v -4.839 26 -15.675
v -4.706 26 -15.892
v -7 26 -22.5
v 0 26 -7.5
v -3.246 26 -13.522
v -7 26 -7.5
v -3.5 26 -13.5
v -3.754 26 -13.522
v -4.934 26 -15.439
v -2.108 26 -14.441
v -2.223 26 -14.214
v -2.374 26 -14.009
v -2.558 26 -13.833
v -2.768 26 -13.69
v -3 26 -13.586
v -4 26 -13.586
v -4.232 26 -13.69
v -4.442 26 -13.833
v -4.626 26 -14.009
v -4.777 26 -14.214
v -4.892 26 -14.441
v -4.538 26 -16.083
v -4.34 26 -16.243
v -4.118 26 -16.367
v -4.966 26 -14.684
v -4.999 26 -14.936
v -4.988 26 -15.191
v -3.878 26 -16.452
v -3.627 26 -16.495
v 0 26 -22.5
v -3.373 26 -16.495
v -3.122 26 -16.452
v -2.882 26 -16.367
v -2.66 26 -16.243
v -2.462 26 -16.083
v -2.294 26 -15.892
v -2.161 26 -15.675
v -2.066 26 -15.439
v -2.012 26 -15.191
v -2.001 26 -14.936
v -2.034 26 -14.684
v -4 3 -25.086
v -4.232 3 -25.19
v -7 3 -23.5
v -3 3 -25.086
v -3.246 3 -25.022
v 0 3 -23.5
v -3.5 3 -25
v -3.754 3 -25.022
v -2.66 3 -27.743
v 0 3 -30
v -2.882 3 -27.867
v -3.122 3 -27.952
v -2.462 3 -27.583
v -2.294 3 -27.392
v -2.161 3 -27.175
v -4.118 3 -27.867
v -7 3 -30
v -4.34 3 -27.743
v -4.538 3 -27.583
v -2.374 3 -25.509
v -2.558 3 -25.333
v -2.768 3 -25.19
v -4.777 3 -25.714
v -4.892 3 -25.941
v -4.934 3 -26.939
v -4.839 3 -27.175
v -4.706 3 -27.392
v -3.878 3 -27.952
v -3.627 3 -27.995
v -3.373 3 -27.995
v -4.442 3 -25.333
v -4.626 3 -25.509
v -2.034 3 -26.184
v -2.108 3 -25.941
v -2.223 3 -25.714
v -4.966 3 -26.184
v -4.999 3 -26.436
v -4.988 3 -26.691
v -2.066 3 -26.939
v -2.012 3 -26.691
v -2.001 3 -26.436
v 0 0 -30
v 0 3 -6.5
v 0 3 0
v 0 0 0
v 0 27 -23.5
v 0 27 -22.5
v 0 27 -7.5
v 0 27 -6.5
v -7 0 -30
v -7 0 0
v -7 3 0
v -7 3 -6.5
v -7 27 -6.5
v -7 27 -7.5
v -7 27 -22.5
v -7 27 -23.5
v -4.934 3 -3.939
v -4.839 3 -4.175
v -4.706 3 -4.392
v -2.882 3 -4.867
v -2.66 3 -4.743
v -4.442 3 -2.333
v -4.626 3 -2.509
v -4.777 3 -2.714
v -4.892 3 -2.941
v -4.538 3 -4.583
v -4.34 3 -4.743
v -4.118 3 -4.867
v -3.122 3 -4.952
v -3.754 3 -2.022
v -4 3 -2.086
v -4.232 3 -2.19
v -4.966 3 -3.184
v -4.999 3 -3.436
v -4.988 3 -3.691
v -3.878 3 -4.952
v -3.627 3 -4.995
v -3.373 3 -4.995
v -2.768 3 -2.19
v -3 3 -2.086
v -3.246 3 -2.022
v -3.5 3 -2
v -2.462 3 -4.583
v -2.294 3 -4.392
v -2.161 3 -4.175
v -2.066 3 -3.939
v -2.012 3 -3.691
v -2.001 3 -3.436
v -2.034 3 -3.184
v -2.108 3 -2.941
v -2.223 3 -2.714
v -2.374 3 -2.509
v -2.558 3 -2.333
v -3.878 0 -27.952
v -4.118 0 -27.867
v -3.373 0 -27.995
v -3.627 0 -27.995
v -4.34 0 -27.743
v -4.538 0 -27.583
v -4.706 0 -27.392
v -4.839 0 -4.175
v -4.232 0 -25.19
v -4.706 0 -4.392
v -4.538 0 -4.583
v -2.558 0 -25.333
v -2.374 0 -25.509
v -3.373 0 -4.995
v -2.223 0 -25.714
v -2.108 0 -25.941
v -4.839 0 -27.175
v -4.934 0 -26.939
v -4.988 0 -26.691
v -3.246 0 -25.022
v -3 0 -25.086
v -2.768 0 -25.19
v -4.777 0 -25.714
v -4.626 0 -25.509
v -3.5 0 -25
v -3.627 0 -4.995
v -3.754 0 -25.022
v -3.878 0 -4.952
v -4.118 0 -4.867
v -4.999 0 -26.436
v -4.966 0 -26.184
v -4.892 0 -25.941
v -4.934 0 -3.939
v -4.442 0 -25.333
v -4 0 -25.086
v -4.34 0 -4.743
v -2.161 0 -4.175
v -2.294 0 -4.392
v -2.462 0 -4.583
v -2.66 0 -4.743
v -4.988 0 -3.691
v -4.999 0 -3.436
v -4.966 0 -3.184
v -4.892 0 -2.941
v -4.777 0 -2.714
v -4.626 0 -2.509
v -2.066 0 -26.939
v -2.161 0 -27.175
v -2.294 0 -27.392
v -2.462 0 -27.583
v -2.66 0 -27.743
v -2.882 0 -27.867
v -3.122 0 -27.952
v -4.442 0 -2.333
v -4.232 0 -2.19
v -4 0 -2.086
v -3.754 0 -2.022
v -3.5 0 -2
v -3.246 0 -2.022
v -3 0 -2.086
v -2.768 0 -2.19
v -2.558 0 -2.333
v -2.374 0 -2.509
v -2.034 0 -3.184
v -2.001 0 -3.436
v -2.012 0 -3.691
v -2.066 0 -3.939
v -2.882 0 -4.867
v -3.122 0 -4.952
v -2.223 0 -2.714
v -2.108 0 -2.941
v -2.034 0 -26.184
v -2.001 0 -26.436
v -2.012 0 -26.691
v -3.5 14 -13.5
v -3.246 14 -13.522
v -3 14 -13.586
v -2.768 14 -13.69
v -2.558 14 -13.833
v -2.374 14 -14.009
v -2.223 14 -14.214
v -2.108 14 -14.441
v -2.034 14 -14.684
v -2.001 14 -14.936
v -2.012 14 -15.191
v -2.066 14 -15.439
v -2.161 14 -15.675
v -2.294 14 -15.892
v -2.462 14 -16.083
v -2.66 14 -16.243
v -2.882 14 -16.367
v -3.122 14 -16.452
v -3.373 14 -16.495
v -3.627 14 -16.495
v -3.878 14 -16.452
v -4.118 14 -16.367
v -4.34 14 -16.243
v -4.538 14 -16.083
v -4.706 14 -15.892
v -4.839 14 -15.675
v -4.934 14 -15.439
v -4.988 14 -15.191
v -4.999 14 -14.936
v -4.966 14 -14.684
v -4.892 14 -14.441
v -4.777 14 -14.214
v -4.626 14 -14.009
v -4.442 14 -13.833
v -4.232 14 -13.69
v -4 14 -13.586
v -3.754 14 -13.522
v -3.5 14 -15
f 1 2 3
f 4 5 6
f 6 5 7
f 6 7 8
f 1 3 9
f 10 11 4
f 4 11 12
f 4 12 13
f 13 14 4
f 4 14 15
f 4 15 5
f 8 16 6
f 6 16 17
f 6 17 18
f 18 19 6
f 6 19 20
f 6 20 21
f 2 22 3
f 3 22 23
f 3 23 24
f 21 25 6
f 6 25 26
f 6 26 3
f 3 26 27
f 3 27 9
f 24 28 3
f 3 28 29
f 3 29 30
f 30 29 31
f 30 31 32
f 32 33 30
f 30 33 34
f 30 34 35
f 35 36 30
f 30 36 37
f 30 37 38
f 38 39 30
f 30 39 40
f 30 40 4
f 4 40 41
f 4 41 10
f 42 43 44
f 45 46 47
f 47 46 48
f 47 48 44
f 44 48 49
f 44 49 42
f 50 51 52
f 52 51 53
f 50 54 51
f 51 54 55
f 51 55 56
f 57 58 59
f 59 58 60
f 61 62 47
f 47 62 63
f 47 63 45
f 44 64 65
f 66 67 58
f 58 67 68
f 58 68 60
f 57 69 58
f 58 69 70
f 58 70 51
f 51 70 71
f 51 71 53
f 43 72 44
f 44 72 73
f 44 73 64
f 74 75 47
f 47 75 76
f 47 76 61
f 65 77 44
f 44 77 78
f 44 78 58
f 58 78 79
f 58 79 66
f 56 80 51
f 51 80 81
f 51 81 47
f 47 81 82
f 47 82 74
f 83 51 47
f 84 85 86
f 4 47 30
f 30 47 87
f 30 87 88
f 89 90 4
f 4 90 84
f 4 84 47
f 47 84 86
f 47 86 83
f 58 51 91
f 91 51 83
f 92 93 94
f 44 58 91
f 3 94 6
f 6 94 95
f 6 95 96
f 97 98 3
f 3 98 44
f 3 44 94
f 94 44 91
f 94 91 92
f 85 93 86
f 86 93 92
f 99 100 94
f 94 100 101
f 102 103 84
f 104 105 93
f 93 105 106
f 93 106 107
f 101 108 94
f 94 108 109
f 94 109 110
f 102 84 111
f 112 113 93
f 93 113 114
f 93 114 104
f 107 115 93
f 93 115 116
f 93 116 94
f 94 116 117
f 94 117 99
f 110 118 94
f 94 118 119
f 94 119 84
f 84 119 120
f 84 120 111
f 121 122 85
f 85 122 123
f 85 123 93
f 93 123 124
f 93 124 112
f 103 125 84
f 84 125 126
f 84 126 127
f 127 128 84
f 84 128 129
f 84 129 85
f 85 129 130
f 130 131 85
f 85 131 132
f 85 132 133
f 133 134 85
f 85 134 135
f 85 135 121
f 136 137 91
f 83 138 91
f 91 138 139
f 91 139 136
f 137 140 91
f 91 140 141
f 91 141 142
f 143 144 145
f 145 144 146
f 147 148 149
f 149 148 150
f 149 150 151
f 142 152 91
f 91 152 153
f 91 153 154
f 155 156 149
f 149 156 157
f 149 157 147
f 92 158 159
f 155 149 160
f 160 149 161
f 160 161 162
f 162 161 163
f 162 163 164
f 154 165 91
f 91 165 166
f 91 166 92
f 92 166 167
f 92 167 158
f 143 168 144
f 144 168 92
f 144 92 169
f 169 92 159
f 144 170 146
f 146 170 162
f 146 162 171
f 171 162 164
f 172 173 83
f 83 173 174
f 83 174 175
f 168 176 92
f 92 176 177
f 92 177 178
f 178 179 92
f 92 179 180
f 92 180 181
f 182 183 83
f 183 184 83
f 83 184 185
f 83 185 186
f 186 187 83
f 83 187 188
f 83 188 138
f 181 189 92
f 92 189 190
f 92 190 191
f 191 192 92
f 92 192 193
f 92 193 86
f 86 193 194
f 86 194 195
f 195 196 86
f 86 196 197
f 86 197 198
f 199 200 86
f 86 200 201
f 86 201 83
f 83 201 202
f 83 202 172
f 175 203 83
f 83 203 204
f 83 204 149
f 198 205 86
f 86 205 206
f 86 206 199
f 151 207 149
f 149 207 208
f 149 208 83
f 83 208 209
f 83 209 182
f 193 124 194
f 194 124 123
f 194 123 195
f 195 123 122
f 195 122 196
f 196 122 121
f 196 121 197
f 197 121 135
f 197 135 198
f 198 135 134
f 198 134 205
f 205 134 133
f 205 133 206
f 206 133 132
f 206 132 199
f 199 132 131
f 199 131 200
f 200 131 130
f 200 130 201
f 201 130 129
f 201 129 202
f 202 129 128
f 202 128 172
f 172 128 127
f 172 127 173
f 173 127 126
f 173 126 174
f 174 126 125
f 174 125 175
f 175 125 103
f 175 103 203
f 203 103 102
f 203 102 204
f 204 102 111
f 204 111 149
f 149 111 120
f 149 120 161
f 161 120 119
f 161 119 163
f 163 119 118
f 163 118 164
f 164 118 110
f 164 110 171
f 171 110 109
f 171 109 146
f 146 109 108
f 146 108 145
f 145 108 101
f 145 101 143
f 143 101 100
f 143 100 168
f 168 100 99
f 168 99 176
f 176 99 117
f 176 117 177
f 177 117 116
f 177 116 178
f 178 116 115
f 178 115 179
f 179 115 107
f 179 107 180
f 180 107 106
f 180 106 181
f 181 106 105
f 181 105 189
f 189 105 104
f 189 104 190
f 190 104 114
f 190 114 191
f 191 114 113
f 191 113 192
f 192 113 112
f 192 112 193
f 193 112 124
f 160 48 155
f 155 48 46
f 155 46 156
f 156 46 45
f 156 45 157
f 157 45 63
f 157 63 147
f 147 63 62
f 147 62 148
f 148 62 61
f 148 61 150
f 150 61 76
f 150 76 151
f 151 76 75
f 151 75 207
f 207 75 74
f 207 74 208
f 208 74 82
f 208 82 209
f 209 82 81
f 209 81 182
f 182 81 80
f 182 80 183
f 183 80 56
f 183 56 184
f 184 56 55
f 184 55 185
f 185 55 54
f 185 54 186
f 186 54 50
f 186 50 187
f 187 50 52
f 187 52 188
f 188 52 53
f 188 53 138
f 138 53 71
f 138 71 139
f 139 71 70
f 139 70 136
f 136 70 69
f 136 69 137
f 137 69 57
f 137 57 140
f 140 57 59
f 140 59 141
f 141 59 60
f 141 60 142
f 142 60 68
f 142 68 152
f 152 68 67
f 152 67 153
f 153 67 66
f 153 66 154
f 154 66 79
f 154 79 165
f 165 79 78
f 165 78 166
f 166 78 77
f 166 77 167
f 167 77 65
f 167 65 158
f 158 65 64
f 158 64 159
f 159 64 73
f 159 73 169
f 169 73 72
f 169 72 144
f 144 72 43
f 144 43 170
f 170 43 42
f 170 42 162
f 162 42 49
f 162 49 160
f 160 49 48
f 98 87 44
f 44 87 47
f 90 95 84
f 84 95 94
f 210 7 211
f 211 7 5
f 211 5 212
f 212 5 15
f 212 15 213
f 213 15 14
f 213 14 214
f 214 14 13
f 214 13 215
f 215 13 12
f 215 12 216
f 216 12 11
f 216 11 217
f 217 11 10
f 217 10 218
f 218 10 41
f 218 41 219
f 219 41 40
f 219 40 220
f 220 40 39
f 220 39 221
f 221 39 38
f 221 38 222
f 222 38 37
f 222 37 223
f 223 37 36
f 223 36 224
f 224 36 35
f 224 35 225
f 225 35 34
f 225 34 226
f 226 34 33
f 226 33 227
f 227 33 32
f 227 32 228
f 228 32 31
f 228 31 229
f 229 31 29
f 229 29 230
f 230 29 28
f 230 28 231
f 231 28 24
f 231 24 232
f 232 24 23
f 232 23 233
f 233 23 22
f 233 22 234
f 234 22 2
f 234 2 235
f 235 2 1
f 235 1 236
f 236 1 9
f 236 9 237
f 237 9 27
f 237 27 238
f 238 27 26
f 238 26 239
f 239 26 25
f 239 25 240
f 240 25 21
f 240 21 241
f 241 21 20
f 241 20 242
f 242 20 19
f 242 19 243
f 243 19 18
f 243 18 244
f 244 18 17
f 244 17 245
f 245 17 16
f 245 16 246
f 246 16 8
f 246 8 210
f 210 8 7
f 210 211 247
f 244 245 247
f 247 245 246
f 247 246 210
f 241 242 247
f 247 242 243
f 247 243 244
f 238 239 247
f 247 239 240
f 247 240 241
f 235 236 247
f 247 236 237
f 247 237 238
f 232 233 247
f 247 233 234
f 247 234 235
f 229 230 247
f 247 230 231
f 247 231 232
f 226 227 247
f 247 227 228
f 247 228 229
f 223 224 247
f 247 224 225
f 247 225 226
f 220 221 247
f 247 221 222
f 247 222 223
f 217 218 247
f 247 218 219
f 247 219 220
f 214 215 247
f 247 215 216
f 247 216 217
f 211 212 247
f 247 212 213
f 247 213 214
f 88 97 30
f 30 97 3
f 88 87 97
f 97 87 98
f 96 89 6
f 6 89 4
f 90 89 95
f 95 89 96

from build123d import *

# Parameters (mm, degrees)
SKETCH1_W           = 7
SKETCH1_H           = 30
BOSS_EXTRUDE1_DEPTH = 3
SKETCH2_R           = 1.5
CUT_EXTRUDE1_DEPTH  = 3
SKETCH3_W           = 7
SKETCH3_H           = 8.5
BOSS_EXTRUDE2_DEPTH = 23
SKETCH4_R           = 1.5
CUT_EXTRUDE3_DEPTH  = 12
SKETCH5_W           = 7
SKETCH5_H           = 1
BOSS_EXTRUDE3_DEPTH = 1


with BuildPart() as part:
    # Sketch1 → Boss-Extrude1 (new body)
    with BuildSketch(Plane(origin=(0, 0, 0), x_dir=(1, 0, 0), z_dir=(0, 1, 0))):
        with Locations((-3.5, 15)):
            Rectangle(SKETCH1_W, SKETCH1_H)
    extrude(amount=BOSS_EXTRUDE1_DEPTH)

    # Sketch2 → Cut-Extrude1 (cut)
    with BuildSketch(Plane(origin=(0, 3, 0), x_dir=(1, 0, 0), z_dir=(0, 1, 0))):
        with Locations(Location((-3.5, 26.5, 0), (0, 0, 270))):
            Circle(SKETCH2_R)
        with Locations(Location((-3.5, 3.5, 0), (0, 0, 270))):
            Circle(SKETCH2_R)
    extrude(amount=-CUT_EXTRUDE1_DEPTH, mode=Mode.SUBTRACT)

    # Sketch3 → Boss-Extrude2 (add)
    with BuildSketch(Plane(origin=(0, 3, 0), x_dir=(1, 0, 0), z_dir=(0, 1, 0))):
        with Locations((-3.5, 19.25)):
            Rectangle(SKETCH3_W, SKETCH3_H)
        with Locations((-3.5, 10.75)):
            Rectangle(SKETCH3_W, SKETCH3_H)
    extrude(amount=BOSS_EXTRUDE2_DEPTH)

    # Sketch4 → Cut-Extrude3 (cut)
    with BuildSketch(Plane(origin=(0, 26, 0), x_dir=(1, 0, 0), z_dir=(0, 1, 0))):
        with Locations(Location((-3.5, 15, 0), (0, 0, 270))):
            Circle(SKETCH4_R)
    extrude(amount=-CUT_EXTRUDE3_DEPTH, mode=Mode.SUBTRACT)

    # Sketch5 → Boss-Extrude3 (add)
    with BuildSketch(Plane(origin=(0, 26, 0), x_dir=(1, 0, 0), z_dir=(0, 1, 0))):
        with Locations((-3.5, 23)):
            Rectangle(SKETCH5_W, SKETCH5_H)
        with Locations((-3.5, 7)):
            Rectangle(SKETCH5_W, SKETCH5_H)
    extrude(amount=BOSS_EXTRUDE3_DEPTH)


solid = part.part
